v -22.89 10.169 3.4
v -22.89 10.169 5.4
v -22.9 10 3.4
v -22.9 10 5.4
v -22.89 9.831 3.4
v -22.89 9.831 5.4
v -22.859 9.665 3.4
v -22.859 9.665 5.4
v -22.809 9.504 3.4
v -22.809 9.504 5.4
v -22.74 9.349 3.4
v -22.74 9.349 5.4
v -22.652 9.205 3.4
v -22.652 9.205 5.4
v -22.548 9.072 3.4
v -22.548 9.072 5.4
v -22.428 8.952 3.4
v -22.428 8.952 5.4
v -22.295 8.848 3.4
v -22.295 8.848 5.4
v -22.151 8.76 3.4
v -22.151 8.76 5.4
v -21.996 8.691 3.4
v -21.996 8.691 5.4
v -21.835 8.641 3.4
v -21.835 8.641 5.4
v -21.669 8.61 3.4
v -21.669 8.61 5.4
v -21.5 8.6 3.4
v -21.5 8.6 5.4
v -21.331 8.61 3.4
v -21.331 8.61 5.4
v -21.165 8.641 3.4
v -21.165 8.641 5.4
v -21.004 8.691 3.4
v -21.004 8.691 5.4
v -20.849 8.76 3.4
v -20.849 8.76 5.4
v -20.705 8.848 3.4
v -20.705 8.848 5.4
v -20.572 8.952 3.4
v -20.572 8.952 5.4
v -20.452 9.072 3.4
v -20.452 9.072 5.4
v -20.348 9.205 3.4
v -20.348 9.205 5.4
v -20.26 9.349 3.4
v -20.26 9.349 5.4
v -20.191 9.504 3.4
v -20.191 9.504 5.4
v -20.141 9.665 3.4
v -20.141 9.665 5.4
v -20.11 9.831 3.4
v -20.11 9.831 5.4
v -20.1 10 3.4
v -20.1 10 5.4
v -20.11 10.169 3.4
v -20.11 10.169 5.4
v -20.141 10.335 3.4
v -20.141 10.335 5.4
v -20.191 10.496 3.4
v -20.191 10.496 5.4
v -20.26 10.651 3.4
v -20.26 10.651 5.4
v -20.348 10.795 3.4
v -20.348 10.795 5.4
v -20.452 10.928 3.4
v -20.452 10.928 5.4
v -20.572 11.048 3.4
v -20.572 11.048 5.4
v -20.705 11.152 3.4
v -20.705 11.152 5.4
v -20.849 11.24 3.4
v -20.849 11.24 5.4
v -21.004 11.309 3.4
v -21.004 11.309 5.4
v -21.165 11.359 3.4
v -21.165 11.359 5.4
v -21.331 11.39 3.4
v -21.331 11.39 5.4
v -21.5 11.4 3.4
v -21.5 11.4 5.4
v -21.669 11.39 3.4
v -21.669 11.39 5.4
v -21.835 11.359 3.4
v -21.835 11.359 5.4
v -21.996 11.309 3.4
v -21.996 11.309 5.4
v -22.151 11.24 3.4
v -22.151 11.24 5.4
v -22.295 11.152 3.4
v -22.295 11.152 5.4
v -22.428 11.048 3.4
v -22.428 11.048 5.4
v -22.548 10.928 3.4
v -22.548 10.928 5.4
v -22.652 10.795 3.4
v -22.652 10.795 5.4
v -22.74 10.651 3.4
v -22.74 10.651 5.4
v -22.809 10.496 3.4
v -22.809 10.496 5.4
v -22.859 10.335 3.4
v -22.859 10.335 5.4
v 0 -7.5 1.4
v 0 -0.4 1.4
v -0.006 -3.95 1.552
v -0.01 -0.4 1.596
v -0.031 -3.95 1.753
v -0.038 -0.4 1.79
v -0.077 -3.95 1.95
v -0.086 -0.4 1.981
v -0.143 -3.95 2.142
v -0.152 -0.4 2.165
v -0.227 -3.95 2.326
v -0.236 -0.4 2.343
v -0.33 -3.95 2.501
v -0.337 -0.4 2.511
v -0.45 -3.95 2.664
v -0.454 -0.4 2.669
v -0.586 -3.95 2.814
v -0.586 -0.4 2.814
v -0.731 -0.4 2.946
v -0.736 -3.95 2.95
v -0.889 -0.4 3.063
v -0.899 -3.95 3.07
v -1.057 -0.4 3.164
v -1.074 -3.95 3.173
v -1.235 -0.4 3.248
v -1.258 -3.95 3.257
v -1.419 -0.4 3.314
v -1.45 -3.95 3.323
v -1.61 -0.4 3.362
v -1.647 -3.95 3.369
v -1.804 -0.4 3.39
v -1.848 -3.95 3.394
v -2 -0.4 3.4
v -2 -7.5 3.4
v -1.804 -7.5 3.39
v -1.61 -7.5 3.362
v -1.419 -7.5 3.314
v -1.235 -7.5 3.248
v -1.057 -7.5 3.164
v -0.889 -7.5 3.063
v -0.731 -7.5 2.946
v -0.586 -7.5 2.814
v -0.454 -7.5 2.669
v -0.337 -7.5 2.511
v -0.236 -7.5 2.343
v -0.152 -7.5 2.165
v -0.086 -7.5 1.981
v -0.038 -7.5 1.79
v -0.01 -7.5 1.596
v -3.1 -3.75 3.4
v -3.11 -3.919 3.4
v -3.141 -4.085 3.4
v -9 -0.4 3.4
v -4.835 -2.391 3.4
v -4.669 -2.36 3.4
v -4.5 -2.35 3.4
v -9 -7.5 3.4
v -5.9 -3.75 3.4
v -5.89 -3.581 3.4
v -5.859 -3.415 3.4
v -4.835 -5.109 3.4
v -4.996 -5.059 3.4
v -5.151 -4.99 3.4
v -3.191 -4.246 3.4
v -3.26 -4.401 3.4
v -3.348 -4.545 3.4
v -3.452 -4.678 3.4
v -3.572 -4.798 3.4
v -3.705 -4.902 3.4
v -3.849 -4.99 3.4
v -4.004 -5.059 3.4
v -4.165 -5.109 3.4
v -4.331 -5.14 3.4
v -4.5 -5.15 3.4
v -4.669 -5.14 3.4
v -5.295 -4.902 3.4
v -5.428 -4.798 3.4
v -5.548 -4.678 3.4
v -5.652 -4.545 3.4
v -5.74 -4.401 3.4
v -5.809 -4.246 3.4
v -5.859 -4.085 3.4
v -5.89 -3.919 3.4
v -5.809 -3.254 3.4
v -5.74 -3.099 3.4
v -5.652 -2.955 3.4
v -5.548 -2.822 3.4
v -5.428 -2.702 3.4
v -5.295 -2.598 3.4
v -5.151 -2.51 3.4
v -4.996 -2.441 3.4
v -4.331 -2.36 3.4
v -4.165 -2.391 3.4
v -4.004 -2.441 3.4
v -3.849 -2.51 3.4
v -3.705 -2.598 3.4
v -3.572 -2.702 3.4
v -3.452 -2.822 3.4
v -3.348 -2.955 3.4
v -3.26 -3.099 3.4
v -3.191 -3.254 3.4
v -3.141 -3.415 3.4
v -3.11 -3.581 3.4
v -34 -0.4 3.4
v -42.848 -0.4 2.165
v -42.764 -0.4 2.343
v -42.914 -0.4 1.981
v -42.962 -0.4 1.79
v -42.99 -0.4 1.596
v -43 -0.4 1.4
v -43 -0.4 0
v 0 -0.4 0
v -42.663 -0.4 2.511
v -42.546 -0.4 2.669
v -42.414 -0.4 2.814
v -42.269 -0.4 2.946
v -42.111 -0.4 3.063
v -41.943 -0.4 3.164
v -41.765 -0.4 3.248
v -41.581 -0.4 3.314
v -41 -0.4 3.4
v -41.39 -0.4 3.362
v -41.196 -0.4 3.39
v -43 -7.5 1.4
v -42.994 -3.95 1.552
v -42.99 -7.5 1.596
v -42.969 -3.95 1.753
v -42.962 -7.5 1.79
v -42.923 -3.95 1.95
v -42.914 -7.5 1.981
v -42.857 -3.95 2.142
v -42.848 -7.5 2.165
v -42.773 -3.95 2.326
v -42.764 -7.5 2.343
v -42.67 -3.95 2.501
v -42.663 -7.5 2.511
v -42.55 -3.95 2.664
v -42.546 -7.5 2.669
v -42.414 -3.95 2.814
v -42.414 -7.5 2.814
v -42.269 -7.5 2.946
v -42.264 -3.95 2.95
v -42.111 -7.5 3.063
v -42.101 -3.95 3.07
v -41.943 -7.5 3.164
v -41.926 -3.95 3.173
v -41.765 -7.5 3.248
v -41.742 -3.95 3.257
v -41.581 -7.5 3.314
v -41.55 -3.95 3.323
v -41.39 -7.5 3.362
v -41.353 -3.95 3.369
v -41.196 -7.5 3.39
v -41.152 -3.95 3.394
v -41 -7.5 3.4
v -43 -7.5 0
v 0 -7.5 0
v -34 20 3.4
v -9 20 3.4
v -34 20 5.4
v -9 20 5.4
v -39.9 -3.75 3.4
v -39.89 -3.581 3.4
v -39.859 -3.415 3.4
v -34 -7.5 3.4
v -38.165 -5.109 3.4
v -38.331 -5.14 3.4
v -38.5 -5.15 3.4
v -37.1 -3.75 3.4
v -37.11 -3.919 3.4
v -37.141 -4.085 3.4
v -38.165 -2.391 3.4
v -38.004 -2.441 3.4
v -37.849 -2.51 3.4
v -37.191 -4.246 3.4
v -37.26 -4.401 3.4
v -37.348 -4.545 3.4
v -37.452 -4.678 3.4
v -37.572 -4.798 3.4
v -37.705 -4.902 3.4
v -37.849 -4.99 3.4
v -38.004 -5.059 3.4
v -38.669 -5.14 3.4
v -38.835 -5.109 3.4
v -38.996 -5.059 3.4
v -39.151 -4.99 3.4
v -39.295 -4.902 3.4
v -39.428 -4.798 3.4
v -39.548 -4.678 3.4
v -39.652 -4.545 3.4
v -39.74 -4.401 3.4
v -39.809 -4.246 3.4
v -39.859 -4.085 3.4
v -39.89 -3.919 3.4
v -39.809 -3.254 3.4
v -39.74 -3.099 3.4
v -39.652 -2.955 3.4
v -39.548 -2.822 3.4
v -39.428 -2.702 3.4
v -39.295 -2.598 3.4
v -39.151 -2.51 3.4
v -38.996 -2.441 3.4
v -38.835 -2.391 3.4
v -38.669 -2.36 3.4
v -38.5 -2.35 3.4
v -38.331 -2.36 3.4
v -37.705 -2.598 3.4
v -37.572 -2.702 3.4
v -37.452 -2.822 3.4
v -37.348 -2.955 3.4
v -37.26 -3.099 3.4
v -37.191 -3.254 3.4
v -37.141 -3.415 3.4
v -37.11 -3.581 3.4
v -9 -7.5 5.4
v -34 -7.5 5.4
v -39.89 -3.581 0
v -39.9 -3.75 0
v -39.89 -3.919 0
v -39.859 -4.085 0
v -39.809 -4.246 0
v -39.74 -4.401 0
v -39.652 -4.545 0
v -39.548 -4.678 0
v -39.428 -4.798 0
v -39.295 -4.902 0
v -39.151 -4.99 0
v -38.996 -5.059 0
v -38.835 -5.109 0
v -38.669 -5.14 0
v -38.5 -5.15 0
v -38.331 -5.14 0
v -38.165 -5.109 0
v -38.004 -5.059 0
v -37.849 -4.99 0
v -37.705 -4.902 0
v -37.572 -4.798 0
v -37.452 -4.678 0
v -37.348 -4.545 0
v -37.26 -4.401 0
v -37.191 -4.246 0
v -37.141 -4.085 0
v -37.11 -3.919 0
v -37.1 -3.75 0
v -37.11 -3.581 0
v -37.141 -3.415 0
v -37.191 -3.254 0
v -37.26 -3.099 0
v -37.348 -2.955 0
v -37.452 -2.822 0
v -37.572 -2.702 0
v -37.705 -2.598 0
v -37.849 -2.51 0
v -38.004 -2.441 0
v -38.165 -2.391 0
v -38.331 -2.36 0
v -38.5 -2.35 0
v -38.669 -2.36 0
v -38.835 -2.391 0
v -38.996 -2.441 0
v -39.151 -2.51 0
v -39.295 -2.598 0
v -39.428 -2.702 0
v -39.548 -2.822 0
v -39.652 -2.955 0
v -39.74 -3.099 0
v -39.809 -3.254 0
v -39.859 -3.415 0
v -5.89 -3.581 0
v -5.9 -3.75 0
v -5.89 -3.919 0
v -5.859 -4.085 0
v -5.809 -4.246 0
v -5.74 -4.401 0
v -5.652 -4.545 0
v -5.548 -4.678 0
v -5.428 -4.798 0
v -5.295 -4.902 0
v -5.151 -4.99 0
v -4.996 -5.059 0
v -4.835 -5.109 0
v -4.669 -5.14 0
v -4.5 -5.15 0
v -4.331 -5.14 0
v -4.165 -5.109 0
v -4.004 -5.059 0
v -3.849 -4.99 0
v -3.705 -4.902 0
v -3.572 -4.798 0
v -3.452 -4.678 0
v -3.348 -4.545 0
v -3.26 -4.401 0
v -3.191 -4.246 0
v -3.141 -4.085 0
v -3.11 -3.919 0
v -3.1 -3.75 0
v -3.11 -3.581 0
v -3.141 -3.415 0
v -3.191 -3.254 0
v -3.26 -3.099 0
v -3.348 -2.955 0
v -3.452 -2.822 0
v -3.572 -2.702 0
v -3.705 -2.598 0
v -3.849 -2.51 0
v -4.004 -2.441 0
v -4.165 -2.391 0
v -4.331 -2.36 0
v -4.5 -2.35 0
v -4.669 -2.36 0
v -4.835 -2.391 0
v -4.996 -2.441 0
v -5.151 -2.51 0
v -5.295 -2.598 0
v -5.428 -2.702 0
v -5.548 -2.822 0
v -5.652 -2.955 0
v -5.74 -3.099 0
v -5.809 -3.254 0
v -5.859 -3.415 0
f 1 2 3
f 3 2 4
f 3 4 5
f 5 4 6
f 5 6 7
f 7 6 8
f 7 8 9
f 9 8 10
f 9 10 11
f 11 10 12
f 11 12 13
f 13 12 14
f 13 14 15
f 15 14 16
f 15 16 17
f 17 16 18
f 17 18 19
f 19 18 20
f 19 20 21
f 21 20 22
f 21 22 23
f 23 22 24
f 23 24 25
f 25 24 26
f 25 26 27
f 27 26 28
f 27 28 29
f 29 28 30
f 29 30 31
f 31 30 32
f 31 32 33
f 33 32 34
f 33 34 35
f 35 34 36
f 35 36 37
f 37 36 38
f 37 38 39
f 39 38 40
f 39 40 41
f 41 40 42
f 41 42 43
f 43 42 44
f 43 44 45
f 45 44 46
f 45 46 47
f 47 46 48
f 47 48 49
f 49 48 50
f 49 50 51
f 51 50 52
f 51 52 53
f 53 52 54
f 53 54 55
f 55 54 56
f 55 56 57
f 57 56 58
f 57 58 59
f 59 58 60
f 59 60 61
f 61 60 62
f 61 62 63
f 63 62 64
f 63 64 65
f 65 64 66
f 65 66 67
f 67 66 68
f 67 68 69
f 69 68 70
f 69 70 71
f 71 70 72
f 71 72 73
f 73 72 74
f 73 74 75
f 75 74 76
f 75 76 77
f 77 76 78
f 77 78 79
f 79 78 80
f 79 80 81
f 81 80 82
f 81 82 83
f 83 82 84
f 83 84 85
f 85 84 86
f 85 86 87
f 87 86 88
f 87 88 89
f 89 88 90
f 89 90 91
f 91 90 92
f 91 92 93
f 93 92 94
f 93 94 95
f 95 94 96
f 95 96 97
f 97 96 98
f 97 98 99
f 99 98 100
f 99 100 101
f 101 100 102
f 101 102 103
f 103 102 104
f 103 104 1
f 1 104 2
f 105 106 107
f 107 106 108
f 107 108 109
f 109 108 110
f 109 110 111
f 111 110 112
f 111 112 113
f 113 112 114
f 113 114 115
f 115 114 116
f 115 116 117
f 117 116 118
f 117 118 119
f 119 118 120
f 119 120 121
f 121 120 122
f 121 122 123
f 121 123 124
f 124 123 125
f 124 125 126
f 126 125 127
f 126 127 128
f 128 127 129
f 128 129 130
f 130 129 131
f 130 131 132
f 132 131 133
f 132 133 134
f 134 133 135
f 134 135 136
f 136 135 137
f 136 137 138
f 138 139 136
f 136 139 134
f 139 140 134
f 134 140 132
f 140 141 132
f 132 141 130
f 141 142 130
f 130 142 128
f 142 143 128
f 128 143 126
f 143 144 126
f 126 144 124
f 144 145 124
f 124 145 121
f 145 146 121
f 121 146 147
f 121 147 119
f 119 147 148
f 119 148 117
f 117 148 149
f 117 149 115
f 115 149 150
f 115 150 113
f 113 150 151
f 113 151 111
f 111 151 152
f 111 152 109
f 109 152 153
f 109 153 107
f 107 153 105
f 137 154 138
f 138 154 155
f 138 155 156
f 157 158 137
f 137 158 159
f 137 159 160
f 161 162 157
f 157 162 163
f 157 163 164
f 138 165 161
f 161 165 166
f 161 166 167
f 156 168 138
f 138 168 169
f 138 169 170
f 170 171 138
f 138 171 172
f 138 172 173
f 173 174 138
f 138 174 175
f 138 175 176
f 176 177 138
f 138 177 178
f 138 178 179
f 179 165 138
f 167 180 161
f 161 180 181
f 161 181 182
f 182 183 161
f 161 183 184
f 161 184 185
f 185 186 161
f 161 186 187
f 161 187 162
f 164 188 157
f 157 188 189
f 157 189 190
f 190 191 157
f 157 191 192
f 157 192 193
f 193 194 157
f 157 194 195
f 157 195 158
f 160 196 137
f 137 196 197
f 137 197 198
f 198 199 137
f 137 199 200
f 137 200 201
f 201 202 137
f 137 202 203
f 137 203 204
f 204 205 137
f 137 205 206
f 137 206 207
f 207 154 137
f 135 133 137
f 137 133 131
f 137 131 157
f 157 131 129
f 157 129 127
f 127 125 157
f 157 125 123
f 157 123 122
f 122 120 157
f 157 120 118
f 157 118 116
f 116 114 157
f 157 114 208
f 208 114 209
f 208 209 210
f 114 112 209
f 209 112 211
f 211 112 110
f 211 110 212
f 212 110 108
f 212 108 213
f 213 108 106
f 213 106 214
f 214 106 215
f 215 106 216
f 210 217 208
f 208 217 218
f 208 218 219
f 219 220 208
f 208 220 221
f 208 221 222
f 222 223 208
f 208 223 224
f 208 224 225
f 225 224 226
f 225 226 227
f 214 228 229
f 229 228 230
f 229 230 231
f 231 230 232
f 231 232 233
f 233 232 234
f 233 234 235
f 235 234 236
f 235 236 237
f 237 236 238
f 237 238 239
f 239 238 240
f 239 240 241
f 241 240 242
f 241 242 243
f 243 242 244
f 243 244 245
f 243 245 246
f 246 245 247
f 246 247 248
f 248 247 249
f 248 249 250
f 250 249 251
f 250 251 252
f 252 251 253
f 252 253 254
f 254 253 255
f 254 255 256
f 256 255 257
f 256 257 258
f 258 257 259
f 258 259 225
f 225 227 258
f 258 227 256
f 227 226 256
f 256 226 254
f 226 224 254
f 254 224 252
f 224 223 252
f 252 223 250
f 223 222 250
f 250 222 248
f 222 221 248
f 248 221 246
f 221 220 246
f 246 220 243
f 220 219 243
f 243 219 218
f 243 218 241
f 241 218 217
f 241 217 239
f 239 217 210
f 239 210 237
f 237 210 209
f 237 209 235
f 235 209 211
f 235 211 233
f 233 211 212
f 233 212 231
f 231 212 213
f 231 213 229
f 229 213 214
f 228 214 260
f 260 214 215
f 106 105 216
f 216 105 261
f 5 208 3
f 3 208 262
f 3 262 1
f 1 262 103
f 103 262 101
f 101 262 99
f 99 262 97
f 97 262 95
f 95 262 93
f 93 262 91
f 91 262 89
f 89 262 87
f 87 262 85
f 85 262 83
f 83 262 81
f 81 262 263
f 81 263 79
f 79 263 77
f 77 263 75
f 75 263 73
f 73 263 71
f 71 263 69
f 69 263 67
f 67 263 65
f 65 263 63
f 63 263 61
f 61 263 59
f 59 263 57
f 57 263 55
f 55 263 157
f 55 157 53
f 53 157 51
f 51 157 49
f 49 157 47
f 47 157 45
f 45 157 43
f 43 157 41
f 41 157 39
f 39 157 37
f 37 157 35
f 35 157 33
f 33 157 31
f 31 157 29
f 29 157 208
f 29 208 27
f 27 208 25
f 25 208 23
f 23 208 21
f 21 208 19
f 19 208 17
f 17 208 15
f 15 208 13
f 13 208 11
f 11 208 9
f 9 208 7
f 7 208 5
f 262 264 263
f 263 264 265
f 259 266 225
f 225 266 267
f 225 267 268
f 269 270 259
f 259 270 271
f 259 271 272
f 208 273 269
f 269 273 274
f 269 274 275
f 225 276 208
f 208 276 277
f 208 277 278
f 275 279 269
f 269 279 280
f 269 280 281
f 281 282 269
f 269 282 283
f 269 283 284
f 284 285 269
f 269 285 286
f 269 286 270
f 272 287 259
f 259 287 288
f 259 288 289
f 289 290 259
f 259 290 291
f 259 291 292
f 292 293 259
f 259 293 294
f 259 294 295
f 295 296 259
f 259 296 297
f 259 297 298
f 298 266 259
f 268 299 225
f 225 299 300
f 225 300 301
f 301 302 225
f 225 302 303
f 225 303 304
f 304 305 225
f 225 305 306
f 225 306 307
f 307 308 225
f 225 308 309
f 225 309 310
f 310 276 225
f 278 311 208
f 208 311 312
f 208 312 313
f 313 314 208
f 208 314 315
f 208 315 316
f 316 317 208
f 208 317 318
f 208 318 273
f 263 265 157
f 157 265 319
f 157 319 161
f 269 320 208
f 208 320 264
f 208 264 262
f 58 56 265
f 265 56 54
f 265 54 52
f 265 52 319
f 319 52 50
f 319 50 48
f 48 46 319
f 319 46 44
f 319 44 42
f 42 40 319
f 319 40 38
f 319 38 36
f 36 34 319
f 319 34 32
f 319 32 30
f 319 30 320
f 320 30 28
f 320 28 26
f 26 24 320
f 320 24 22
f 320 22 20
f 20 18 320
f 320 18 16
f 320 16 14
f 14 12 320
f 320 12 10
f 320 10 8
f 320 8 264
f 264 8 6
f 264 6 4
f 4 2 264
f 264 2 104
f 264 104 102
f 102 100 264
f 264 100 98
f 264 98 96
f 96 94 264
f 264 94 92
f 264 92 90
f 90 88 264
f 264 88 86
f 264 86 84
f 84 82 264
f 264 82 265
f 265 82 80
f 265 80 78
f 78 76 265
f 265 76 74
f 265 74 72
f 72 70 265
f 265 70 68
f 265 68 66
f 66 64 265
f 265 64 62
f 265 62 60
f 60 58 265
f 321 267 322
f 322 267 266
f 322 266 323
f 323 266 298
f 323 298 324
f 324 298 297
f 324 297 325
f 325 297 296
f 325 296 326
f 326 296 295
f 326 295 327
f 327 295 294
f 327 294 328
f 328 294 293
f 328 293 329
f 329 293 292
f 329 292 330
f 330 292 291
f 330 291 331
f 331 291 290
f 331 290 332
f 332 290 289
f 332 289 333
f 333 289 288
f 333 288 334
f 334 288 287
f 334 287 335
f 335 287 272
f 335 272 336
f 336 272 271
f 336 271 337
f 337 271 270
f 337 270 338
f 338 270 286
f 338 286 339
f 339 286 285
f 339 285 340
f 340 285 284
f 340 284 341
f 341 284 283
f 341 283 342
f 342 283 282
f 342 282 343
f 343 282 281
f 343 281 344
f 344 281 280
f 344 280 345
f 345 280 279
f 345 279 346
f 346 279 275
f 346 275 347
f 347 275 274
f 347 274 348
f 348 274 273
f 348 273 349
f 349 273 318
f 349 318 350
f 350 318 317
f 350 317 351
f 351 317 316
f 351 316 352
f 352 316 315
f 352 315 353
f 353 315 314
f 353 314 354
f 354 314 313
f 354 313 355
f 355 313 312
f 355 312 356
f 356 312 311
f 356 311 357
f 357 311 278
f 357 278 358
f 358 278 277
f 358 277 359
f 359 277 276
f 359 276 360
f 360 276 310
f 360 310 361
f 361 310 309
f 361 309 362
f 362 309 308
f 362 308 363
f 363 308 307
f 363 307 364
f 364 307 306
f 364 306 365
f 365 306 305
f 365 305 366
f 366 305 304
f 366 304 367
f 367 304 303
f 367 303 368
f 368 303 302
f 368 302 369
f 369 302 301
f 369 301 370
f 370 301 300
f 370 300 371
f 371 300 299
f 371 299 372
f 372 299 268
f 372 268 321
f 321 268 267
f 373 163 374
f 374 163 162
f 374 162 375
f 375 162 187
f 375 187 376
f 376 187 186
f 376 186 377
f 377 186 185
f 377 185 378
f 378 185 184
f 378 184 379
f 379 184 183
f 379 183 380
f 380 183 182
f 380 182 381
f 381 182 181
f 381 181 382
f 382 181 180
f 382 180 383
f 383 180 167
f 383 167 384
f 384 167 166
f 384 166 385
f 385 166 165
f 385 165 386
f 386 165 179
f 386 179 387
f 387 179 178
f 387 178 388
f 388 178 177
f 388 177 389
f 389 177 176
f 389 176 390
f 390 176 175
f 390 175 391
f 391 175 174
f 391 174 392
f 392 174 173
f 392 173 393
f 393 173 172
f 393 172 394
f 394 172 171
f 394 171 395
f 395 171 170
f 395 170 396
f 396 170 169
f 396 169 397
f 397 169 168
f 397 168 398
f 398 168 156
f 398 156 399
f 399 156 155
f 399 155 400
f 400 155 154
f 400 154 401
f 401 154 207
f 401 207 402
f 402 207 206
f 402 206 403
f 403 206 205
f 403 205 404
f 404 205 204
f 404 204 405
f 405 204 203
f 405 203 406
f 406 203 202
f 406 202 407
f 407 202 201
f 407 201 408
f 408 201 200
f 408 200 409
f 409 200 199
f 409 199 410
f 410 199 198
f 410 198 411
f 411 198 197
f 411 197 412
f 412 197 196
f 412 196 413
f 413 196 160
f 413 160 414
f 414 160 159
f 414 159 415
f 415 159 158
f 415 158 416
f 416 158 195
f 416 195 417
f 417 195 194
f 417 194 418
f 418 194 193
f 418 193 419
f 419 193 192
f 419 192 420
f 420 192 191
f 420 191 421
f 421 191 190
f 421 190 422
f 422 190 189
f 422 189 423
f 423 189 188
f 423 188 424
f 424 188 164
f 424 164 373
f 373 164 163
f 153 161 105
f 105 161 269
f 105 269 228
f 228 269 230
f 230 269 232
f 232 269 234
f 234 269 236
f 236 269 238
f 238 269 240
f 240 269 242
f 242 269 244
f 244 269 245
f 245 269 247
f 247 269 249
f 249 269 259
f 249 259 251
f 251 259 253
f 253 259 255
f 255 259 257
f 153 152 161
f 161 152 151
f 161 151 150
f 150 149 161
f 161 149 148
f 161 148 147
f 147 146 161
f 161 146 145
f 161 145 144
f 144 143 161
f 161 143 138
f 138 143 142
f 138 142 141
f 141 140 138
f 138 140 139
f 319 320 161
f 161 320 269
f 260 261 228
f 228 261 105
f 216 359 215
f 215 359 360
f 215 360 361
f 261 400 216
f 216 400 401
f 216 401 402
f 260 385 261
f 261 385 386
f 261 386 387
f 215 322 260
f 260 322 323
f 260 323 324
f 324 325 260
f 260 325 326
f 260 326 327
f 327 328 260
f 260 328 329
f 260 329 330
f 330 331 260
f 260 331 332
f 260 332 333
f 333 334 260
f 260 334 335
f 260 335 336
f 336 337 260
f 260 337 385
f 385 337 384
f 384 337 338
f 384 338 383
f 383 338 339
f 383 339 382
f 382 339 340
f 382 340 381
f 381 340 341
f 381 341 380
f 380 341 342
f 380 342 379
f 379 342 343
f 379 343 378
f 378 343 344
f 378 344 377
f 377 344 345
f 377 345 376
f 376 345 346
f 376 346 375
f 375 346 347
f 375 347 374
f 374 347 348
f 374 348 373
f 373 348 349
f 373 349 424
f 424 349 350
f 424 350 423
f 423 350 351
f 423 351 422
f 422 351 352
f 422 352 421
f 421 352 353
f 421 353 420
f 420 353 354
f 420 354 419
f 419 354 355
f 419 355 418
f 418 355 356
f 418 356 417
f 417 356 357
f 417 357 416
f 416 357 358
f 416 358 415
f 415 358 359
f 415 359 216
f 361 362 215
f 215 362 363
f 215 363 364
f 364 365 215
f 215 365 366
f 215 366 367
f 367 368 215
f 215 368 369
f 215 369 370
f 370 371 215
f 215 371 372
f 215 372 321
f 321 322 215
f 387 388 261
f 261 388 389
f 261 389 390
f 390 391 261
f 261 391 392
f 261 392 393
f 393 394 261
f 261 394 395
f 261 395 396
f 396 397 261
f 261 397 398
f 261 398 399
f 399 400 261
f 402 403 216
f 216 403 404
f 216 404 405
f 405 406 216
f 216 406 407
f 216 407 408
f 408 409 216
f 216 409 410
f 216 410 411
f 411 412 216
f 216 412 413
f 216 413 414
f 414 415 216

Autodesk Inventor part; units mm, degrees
ref_plane "YZ Plane" through (0, 0, 0) normal (1, 0, 0) x (0, 1, 0)
ref_plane "XZ Plane" through (0, 0, 0) normal (0, 1, 0) x (-1, 0, 0)
ref_plane "XY Plane" through (0, 0, 0) normal (0, 0, 1) x (1, 0, 0)
sketch "Sketch1" plane through (0, 0, 0) normal (0, 0, 1) x (1, 0, 0)
  line L0 (0, 0) -> (-43, 0)
  line L1 (-43, 0) -> (-43, -7.5)
  line L2 (-43, -7.5) -> (0, -7.5)
  line L3 (0, -7.5) -> (0, 0)
  dimension "d0" = 43
  dimension "d1" = 7.5
extrude "Extrusion1" add sketch "Sketch1" along normal blind 3.4
sketch "Sketch3" plane through (0, 0, 3.4) normal (0, 0, 1) x (1, 0, 0)
  circle A0 centre (-38.5, -3.75) radius 1.5
  circle A1 centre (-4.5, -3.75) radius 1.5
  point P0 (0, 0)
  dimension "d4" = 3
  dimension "d5" = 3
hole "Hole1" at (-38.5, -3.75, 3.4) at (-4.5, -3.75, 3.4) direction (0, 0, -1) diameter 2.8 end through all
sketch "Sketch4" plane through (0, 0, 3.4) normal (0, 0, 1) x (1, 0, 0)
  line L0 (-43, 0) -> (-43, -7.5) projected
  line L1 (-43, 0) -> (-34, 0)
  line L2 (-34, 0) -> (-34, -3.75)
  line L3 (-34, -3.75) -> (-43, -3.75)
  line L4 (-43, -3.75) -> (-43, 0)
  line L5 (0, 0) -> (-9, 0)
  line L6 (-9, 0) -> (-9, -3.75)
  line L7 (-9, -3.75) -> (0, -3.75)
  line L8 (0, -3.75) -> (0, 0)
  line L9 (-9, 0) -> (-34, 0)
  line L10 (-34, 0) -> (-34, -2)
  line L11 (-34, -2) -> (-9, -2)
  line L12 (-9, -2) -> (-9, 0)
  dimension "d13" = 9
  dimension "d14" = 9
  dimension "d15" = 2
extrude "Extrusion2" add sketch "Sketch4" along normal blind 2 contours L9 L6 L11 L2
sketch "Sketch5" plane through (-43, 0, 0) normal (0, 1, 0) x (1, 0, 0)
  line L0 (43, -3.4) -> (34, -3.4) projected
  line L1 (9, -5.4) -> (34, -5.4) projected
  line L2 (34, -3.4) -> (9, -3.4)
  line L3 (9, -3.4) -> (9, -5.4)
  line L4 (9, -5.4) -> (34, -5.4)
  line L5 (34, -5.4) -> (34, -3.4)
  point P0 (43, 0)
extrude "Extrusion3" add sketch "Sketch5" along normal blind 20 and the other way blind 7.5
sketch "Sketch6" plane through (-43, 0, 0) normal (0, 1, 0) x (1, 0, 0)
  line L0 (43, 0) -> (43, -3.4) projected
  line L1 (0, 0) -> (0, -3.4) projected
  line L2 (43, 0) -> (0, 0)
  line L3 (0, 0) -> (0, -3.4)
  line L4 (0, -3.4) -> (43, -3.4)
  line L5 (43, -3.4) -> (43, 0)
  dimension "d22" = 43
extrude "Extrusion4" cut sketch "Sketch6" against normal blind 0.4
fillet "Fillet3" radius 2 1 edges at (-43, -3.95, 3.4)
fillet "Fillet4" radius 2 1 edges at (0, -3.95, 3.4)
sketch "Sketch7" plane through (0, 0, 5.4) normal (0, 0, 1) x (1, 0, 0)
  line L0 (-9, -7.5) -> (-34, -7.5) projected
  line L1 (-9, -7.5) -> (-21.5, -7.5)
  line L2 (-21.5, -7.5) -> (-21.5, 0)
  line L3 (-21.5, 0) -> (-9, 0)
  line L4 (-9, 0) -> (-9, -7.5)
  line L5 (-21.5, 0) -> (-21.5, 10)
  circle A0 centre (-21.5, 10) radius 1.4
  point P0 (0, 0)
  dimension "d32" = 12.5
  dimension "d33" = 7.5
  dimension "d34" = 10
  dimension "d35" = 2.8
hole "Hole2" at (-21.5, 10, 5.4) direction (0, 0, -1) diameter 2.8 end through all
properties part number "Enclosure clip simple"
